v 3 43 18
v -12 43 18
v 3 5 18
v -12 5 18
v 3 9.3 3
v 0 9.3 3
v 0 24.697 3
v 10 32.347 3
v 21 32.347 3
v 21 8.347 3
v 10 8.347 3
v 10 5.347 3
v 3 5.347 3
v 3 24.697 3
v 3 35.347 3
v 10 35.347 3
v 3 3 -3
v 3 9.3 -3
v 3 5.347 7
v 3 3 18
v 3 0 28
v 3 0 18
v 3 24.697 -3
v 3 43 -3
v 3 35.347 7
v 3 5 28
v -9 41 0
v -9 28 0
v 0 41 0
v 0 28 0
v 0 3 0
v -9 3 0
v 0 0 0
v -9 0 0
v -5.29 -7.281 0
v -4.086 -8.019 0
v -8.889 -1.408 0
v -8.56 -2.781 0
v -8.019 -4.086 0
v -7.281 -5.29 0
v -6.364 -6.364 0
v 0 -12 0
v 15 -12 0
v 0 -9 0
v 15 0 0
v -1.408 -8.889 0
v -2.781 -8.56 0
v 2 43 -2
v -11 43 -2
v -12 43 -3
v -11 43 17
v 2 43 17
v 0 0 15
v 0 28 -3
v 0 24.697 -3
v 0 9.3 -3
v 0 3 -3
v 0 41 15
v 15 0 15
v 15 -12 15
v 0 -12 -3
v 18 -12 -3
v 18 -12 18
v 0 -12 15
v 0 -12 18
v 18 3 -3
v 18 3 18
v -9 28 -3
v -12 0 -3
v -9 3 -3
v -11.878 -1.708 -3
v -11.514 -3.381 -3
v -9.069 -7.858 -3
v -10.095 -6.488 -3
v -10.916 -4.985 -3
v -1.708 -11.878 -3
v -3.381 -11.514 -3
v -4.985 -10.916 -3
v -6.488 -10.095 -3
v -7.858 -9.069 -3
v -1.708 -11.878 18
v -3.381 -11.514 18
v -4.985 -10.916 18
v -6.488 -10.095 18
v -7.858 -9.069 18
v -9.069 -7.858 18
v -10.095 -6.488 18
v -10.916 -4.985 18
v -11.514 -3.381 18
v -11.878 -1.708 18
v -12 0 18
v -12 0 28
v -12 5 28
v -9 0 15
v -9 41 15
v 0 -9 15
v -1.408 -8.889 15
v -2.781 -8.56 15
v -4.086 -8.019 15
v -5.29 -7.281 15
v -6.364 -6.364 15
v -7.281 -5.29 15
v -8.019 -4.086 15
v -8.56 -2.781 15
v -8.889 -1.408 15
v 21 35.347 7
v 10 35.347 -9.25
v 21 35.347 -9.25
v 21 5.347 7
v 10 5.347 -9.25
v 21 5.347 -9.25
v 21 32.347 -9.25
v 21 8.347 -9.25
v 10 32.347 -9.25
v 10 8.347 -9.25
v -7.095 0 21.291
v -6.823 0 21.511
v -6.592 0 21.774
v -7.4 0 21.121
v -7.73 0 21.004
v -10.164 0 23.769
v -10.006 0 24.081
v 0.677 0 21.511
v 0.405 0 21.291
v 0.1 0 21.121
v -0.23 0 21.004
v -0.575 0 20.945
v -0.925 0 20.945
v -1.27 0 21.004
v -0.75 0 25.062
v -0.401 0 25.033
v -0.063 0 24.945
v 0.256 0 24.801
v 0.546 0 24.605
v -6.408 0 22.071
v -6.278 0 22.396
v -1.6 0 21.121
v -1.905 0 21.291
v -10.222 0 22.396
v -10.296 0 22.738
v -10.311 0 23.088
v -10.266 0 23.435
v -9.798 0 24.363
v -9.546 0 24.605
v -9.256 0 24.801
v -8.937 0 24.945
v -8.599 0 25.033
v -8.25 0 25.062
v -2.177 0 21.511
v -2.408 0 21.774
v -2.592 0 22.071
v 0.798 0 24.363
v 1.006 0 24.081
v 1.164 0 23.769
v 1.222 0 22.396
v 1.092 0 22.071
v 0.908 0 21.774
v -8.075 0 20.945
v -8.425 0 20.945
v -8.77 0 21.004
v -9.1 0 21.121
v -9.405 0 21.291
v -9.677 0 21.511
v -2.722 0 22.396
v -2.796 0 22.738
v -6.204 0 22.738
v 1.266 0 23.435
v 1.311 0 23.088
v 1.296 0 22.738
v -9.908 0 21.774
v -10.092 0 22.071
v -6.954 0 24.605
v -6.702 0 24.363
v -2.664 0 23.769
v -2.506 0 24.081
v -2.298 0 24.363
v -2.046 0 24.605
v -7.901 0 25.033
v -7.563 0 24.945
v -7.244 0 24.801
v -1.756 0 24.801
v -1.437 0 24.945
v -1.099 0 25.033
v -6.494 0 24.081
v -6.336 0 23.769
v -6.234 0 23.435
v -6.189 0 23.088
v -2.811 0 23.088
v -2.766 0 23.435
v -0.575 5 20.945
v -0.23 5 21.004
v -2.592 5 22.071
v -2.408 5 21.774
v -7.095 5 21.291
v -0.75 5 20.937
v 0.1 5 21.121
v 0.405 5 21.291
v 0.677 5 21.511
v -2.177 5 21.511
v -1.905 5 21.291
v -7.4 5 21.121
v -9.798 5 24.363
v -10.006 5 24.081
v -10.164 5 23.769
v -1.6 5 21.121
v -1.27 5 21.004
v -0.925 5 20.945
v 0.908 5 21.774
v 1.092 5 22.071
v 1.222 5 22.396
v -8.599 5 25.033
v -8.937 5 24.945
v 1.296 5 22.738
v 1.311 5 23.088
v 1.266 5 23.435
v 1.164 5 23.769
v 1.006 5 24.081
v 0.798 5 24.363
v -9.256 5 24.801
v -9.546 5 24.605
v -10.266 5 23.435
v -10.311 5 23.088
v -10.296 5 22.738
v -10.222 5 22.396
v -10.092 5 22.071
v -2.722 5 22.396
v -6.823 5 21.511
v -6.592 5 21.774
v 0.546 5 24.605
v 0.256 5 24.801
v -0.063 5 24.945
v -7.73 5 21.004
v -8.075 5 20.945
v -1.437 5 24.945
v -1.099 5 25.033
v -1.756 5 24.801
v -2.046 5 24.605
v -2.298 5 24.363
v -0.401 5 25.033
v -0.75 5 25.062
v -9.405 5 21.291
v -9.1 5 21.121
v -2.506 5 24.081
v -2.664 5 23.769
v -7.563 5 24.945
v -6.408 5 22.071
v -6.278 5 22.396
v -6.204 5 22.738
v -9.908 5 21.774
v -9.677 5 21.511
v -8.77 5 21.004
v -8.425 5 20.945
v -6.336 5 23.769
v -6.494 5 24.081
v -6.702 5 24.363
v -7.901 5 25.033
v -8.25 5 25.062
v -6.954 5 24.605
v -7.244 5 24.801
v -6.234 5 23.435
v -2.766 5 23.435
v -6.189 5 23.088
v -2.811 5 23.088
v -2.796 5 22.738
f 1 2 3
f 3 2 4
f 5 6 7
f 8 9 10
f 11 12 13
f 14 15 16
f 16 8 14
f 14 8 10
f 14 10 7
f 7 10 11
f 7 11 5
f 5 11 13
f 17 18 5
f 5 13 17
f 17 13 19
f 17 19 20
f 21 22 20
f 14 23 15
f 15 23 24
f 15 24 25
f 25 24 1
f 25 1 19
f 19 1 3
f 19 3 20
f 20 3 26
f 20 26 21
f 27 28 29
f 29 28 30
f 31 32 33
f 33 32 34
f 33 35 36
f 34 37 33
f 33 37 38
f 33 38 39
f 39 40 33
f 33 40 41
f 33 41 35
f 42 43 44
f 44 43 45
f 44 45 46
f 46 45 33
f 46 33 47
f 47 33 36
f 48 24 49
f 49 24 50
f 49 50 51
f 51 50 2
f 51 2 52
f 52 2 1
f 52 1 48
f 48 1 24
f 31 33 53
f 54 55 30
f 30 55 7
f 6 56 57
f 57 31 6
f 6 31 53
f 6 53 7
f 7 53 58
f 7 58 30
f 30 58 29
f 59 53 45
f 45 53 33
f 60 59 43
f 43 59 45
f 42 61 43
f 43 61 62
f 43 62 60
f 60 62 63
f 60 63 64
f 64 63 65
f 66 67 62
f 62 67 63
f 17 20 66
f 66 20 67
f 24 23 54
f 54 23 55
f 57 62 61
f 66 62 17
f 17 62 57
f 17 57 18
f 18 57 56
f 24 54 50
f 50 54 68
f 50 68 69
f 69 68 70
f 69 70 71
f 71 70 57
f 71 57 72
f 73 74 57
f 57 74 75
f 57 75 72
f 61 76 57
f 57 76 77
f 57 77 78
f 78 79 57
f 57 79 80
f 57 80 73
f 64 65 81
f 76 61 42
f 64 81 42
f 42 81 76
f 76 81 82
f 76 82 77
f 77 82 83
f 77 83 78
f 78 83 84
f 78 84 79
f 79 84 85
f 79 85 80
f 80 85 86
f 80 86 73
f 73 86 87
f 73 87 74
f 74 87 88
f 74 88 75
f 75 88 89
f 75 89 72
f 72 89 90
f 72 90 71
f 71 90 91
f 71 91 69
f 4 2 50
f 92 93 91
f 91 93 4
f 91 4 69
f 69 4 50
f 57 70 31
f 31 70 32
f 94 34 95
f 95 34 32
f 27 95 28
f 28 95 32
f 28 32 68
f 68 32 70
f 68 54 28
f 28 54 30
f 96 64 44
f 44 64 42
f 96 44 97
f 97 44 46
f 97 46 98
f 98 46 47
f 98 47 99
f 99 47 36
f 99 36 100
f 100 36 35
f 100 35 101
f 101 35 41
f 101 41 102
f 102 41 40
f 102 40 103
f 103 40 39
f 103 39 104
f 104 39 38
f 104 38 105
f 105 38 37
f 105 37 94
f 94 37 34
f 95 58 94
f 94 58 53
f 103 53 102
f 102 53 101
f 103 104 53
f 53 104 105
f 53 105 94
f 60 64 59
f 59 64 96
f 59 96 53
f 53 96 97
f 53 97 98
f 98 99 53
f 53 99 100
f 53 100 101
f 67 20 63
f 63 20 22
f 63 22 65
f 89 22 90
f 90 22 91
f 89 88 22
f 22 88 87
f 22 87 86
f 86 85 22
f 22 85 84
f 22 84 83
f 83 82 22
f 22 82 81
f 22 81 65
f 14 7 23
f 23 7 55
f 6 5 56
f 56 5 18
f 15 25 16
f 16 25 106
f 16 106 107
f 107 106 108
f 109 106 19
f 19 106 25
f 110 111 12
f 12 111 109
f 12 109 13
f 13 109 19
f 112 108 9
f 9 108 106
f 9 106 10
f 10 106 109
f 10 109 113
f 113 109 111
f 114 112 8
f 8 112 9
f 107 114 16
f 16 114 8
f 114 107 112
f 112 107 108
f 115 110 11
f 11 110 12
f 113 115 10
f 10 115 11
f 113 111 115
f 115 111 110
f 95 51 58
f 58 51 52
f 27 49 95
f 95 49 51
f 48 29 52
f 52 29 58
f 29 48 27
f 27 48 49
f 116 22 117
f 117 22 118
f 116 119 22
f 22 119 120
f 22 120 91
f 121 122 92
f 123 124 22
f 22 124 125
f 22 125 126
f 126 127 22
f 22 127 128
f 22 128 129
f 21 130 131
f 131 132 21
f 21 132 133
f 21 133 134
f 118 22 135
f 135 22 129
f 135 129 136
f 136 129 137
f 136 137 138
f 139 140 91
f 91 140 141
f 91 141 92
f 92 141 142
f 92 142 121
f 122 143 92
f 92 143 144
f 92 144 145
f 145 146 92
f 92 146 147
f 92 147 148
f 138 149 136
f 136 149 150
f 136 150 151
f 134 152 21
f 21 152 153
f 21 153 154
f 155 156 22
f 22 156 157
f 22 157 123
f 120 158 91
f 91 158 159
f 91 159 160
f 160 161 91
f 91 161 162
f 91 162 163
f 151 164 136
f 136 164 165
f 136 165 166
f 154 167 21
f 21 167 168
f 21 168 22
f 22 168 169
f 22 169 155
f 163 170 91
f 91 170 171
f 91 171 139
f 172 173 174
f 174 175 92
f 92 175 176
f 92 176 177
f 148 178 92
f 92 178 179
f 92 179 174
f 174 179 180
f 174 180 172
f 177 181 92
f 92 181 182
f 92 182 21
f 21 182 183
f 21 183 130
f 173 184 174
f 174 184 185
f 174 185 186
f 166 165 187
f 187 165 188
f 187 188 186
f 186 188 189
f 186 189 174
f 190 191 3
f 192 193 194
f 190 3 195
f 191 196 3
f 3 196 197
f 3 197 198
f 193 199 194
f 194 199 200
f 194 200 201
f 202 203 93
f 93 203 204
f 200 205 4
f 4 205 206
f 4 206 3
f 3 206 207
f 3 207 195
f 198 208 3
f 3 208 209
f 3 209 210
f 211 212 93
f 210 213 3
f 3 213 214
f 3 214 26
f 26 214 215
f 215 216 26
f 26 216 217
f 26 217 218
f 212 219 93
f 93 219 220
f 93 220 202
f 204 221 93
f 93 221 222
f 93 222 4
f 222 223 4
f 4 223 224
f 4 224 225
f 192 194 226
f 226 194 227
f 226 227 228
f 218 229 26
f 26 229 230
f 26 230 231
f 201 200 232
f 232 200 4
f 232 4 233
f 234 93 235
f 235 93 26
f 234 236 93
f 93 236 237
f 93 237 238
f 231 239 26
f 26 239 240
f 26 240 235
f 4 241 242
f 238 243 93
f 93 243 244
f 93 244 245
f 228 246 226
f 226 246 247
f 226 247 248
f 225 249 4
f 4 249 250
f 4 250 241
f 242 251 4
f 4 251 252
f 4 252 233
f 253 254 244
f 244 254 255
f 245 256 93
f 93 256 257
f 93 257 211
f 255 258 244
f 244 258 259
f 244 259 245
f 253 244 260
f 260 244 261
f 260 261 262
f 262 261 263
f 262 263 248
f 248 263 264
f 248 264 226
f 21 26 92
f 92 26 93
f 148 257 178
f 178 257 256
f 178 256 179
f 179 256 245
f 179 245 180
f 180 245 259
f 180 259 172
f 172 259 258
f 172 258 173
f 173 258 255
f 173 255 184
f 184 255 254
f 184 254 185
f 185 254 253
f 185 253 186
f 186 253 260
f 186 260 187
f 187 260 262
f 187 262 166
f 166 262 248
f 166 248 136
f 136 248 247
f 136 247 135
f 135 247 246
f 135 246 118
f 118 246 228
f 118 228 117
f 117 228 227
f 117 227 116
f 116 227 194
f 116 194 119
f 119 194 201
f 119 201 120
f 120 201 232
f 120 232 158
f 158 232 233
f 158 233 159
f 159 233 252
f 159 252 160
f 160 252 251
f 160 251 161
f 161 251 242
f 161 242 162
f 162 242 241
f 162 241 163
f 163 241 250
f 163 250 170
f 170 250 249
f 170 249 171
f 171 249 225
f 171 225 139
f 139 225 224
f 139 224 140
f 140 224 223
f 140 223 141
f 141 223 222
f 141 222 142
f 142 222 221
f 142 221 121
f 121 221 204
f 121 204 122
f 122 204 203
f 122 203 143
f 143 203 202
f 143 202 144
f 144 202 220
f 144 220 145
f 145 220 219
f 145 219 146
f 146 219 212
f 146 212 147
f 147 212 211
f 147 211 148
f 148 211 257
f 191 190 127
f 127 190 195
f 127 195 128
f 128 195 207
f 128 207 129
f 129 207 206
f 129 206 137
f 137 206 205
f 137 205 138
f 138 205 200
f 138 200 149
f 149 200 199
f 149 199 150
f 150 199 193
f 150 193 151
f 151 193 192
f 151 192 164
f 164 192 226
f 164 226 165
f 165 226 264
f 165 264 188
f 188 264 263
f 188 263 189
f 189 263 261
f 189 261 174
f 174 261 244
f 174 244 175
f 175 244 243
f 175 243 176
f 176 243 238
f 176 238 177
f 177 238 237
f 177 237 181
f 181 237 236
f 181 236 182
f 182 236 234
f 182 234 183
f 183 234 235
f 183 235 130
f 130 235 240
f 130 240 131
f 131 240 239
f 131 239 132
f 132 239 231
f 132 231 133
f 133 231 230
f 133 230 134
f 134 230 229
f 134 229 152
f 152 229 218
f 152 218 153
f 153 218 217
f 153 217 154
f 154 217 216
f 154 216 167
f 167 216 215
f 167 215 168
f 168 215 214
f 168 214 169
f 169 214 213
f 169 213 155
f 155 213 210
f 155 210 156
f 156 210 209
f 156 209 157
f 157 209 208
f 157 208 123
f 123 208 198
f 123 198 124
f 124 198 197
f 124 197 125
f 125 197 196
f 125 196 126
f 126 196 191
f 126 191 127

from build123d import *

# Parameters (mm, degrees)
BOSS_EXTRUDE1_DEPTH   = 15
BOSS_EXTRUDE1_2_DEPTH = 15
SKETCH2_W             = 9
SKETCH2_H             = 25
BOSS_EXTRUDE2_DEPTH   = 3
BOSS_EXTRUDE3_START   = 3
BOSS_EXTRUDE3_DEPTH   = 3
SKETCH4_W             = 3
SKETCH4_H             = 15.397275821
CUT_EXTRUDE1_DEPTH    = 6
BOSS_EXTRUDE4_DEPTH   = 18
SKETCH7_W             = 11
SKETCH7_H             = 3
BOSS_EXTRUDE5_DEPTH   = 12.25
CHAMFER1_SIZE         = 2
SKETCH8_W             = 15
SKETCH8_H             = 5
BOSS_EXTRUDE6_DEPTH   = 10
SKETCH9_R             = 2.0625
CUT_EXTRUDE2_DEPTH    = 52.662365412


with BuildPart() as part:
    # Sketch1 → Boss-Extrude1 (new body)
    with BuildSketch(Plane.XY):
        Polygon((0, 43), (0, 0), (15, 0), (15, -12), (18, -12), (18, 3), (3, 3), (3, 43), align=None)
    extrude(amount=BOSS_EXTRUDE1_DEPTH)



with BuildPart() as body_2:
    # Sketch1 → Boss-Extrude1 2 (new body)
    with BuildSketch(Plane.XY):
        with BuildLine():
            Line((0, -9), (0, -12))
            ThreePointArc((0, -12), (-8.485281374, -8.485281374), (-12, 0))
            Line((-12, 0), (-12, 43))
            Line((-12, 43), (-9, 43))
            Line((-9, 43), (-9, 0))
            ThreePointArc((-9, 0), (-6.363961031, -6.363961031), (0, -9))
        make_face()
    extrude(amount=BOSS_EXTRUDE1_2_DEPTH)


with BuildPart() as part_1:
    add(part.part)

    add(body_2.part)  # Boss-Extrude2 merges body 2
    # Sketch2 → Boss-Extrude2 (add)
    with BuildSketch(Plane(origin=(0, 0, 0), x_dir=(-1, 0, 0), z_dir=(0, 0, -1))):
        with BuildLine():
            Line((-3, 43), (12, 43))
            Line((12, 43), (12, 0))
            ThreePointArc((12, 0), (8.485281374, -8.485281374), (0, -12))
            Line((0, -12), (-18, -12))
            Line((-18, -12), (-18, 3))
            Line((-18, 3), (-3, 3))
            Line((-3, 3), (-3, 43))
        make_face()
        with Locations((4.5, 15.5)):
            Rectangle(SKETCH2_W, SKETCH2_H, mode=Mode.SUBTRACT)
    extrude(amount=BOSS_EXTRUDE2_DEPTH)

    # Sketch3 → Boss-Extrude3 (add)
    with BuildSketch(Plane.XY.offset(15).offset(BOSS_EXTRUDE3_START)):
        with BuildLine():
            Line((-12, 0), (-12, 43))
            Line((-12, 43), (3, 43))
            Line((3, 43), (3, 3))
            Line((3, 3), (18, 3))
            Line((18, 3), (18, -12))
            Line((18, -12), (0, -12))
            ThreePointArc((0, -12), (-8.485281374, -8.485281374), (-12, 0))
        make_face()
    extrude(amount=-BOSS_EXTRUDE3_DEPTH)

    # Sketch4 → Cut-Extrude1 (cut)
    with BuildSketch(Plane(origin=(0, 0, -3), x_dir=(-1, 0, 0), z_dir=(0, 0, -1))):
        with Locations((-1.5, 16.998637911)):
            Rectangle(SKETCH4_W, SKETCH4_H)
    extrude(amount=-CUT_EXTRUDE1_DEPTH, mode=Mode.SUBTRACT)

    # Sketch5 → Boss-Extrude4 (add)
    with BuildSketch(Plane(origin=(3, 0, 0), x_dir=(0, 0, -1), z_dir=(1, 0, 0))):
        Polygon((-3, 32.347275821), (-3, 8.347275821), (-3, 5.347275821), (-7, 5.347275821), (-7, 8.347275821), (-7, 32.347275821), (-7, 35.347275821), (-3, 35.347275821), align=None)
    extrude(amount=BOSS_EXTRUDE4_DEPTH)

    # Sketch7 → Boss-Extrude5 (add)
    with BuildSketch(Plane(origin=(0, 0, 3), x_dir=(-1, 0, 0), z_dir=(0, 0, -1))):
        with Locations((-15.5, 33.847275821)):
            Rectangle(SKETCH7_W, SKETCH7_H)
        with Locations((-15.5, 6.847275821)):
            Rectangle(SKETCH7_W, SKETCH7_H)
    extrude(amount=BOSS_EXTRUDE5_DEPTH)

    # Chamfer1
    chamfer1_edges = [part_1.edges().sort_by_distance(p)[0] for p in [
        (0, 43, 7.5),
        (-4.5, 43, 0),
        (-9, 43, 7.5),
        (-4.5, 43, 15),
    ]]
    chamfer(chamfer1_edges, length=CHAMFER1_SIZE)

    # Sketch8 → Boss-Extrude6 (add)
    with BuildSketch(Plane.XY.offset(18)):
        with Locations((-4.5, 2.5)):
            Rectangle(SKETCH8_W, SKETCH8_H)
    extrude(amount=BOSS_EXTRUDE6_DEPTH)

    # Sketch9 → Cut-Extrude2 (cut, through all)
    with BuildSketch(Plane(origin=(0, 5, 0), x_dir=(1, 0, 0), z_dir=(0, 1, 0))):
        with Locations(Location((-8.25, -23, 0), (0, 0, 270))):
            Circle(SKETCH9_R)
        with Locations(Location((-0.75, -23, 0), (0, 0, 270))):
            Circle(SKETCH9_R)
    extrude(amount=-CUT_EXTRUDE2_DEPTH, mode=Mode.SUBTRACT)


solid = part_1.part
